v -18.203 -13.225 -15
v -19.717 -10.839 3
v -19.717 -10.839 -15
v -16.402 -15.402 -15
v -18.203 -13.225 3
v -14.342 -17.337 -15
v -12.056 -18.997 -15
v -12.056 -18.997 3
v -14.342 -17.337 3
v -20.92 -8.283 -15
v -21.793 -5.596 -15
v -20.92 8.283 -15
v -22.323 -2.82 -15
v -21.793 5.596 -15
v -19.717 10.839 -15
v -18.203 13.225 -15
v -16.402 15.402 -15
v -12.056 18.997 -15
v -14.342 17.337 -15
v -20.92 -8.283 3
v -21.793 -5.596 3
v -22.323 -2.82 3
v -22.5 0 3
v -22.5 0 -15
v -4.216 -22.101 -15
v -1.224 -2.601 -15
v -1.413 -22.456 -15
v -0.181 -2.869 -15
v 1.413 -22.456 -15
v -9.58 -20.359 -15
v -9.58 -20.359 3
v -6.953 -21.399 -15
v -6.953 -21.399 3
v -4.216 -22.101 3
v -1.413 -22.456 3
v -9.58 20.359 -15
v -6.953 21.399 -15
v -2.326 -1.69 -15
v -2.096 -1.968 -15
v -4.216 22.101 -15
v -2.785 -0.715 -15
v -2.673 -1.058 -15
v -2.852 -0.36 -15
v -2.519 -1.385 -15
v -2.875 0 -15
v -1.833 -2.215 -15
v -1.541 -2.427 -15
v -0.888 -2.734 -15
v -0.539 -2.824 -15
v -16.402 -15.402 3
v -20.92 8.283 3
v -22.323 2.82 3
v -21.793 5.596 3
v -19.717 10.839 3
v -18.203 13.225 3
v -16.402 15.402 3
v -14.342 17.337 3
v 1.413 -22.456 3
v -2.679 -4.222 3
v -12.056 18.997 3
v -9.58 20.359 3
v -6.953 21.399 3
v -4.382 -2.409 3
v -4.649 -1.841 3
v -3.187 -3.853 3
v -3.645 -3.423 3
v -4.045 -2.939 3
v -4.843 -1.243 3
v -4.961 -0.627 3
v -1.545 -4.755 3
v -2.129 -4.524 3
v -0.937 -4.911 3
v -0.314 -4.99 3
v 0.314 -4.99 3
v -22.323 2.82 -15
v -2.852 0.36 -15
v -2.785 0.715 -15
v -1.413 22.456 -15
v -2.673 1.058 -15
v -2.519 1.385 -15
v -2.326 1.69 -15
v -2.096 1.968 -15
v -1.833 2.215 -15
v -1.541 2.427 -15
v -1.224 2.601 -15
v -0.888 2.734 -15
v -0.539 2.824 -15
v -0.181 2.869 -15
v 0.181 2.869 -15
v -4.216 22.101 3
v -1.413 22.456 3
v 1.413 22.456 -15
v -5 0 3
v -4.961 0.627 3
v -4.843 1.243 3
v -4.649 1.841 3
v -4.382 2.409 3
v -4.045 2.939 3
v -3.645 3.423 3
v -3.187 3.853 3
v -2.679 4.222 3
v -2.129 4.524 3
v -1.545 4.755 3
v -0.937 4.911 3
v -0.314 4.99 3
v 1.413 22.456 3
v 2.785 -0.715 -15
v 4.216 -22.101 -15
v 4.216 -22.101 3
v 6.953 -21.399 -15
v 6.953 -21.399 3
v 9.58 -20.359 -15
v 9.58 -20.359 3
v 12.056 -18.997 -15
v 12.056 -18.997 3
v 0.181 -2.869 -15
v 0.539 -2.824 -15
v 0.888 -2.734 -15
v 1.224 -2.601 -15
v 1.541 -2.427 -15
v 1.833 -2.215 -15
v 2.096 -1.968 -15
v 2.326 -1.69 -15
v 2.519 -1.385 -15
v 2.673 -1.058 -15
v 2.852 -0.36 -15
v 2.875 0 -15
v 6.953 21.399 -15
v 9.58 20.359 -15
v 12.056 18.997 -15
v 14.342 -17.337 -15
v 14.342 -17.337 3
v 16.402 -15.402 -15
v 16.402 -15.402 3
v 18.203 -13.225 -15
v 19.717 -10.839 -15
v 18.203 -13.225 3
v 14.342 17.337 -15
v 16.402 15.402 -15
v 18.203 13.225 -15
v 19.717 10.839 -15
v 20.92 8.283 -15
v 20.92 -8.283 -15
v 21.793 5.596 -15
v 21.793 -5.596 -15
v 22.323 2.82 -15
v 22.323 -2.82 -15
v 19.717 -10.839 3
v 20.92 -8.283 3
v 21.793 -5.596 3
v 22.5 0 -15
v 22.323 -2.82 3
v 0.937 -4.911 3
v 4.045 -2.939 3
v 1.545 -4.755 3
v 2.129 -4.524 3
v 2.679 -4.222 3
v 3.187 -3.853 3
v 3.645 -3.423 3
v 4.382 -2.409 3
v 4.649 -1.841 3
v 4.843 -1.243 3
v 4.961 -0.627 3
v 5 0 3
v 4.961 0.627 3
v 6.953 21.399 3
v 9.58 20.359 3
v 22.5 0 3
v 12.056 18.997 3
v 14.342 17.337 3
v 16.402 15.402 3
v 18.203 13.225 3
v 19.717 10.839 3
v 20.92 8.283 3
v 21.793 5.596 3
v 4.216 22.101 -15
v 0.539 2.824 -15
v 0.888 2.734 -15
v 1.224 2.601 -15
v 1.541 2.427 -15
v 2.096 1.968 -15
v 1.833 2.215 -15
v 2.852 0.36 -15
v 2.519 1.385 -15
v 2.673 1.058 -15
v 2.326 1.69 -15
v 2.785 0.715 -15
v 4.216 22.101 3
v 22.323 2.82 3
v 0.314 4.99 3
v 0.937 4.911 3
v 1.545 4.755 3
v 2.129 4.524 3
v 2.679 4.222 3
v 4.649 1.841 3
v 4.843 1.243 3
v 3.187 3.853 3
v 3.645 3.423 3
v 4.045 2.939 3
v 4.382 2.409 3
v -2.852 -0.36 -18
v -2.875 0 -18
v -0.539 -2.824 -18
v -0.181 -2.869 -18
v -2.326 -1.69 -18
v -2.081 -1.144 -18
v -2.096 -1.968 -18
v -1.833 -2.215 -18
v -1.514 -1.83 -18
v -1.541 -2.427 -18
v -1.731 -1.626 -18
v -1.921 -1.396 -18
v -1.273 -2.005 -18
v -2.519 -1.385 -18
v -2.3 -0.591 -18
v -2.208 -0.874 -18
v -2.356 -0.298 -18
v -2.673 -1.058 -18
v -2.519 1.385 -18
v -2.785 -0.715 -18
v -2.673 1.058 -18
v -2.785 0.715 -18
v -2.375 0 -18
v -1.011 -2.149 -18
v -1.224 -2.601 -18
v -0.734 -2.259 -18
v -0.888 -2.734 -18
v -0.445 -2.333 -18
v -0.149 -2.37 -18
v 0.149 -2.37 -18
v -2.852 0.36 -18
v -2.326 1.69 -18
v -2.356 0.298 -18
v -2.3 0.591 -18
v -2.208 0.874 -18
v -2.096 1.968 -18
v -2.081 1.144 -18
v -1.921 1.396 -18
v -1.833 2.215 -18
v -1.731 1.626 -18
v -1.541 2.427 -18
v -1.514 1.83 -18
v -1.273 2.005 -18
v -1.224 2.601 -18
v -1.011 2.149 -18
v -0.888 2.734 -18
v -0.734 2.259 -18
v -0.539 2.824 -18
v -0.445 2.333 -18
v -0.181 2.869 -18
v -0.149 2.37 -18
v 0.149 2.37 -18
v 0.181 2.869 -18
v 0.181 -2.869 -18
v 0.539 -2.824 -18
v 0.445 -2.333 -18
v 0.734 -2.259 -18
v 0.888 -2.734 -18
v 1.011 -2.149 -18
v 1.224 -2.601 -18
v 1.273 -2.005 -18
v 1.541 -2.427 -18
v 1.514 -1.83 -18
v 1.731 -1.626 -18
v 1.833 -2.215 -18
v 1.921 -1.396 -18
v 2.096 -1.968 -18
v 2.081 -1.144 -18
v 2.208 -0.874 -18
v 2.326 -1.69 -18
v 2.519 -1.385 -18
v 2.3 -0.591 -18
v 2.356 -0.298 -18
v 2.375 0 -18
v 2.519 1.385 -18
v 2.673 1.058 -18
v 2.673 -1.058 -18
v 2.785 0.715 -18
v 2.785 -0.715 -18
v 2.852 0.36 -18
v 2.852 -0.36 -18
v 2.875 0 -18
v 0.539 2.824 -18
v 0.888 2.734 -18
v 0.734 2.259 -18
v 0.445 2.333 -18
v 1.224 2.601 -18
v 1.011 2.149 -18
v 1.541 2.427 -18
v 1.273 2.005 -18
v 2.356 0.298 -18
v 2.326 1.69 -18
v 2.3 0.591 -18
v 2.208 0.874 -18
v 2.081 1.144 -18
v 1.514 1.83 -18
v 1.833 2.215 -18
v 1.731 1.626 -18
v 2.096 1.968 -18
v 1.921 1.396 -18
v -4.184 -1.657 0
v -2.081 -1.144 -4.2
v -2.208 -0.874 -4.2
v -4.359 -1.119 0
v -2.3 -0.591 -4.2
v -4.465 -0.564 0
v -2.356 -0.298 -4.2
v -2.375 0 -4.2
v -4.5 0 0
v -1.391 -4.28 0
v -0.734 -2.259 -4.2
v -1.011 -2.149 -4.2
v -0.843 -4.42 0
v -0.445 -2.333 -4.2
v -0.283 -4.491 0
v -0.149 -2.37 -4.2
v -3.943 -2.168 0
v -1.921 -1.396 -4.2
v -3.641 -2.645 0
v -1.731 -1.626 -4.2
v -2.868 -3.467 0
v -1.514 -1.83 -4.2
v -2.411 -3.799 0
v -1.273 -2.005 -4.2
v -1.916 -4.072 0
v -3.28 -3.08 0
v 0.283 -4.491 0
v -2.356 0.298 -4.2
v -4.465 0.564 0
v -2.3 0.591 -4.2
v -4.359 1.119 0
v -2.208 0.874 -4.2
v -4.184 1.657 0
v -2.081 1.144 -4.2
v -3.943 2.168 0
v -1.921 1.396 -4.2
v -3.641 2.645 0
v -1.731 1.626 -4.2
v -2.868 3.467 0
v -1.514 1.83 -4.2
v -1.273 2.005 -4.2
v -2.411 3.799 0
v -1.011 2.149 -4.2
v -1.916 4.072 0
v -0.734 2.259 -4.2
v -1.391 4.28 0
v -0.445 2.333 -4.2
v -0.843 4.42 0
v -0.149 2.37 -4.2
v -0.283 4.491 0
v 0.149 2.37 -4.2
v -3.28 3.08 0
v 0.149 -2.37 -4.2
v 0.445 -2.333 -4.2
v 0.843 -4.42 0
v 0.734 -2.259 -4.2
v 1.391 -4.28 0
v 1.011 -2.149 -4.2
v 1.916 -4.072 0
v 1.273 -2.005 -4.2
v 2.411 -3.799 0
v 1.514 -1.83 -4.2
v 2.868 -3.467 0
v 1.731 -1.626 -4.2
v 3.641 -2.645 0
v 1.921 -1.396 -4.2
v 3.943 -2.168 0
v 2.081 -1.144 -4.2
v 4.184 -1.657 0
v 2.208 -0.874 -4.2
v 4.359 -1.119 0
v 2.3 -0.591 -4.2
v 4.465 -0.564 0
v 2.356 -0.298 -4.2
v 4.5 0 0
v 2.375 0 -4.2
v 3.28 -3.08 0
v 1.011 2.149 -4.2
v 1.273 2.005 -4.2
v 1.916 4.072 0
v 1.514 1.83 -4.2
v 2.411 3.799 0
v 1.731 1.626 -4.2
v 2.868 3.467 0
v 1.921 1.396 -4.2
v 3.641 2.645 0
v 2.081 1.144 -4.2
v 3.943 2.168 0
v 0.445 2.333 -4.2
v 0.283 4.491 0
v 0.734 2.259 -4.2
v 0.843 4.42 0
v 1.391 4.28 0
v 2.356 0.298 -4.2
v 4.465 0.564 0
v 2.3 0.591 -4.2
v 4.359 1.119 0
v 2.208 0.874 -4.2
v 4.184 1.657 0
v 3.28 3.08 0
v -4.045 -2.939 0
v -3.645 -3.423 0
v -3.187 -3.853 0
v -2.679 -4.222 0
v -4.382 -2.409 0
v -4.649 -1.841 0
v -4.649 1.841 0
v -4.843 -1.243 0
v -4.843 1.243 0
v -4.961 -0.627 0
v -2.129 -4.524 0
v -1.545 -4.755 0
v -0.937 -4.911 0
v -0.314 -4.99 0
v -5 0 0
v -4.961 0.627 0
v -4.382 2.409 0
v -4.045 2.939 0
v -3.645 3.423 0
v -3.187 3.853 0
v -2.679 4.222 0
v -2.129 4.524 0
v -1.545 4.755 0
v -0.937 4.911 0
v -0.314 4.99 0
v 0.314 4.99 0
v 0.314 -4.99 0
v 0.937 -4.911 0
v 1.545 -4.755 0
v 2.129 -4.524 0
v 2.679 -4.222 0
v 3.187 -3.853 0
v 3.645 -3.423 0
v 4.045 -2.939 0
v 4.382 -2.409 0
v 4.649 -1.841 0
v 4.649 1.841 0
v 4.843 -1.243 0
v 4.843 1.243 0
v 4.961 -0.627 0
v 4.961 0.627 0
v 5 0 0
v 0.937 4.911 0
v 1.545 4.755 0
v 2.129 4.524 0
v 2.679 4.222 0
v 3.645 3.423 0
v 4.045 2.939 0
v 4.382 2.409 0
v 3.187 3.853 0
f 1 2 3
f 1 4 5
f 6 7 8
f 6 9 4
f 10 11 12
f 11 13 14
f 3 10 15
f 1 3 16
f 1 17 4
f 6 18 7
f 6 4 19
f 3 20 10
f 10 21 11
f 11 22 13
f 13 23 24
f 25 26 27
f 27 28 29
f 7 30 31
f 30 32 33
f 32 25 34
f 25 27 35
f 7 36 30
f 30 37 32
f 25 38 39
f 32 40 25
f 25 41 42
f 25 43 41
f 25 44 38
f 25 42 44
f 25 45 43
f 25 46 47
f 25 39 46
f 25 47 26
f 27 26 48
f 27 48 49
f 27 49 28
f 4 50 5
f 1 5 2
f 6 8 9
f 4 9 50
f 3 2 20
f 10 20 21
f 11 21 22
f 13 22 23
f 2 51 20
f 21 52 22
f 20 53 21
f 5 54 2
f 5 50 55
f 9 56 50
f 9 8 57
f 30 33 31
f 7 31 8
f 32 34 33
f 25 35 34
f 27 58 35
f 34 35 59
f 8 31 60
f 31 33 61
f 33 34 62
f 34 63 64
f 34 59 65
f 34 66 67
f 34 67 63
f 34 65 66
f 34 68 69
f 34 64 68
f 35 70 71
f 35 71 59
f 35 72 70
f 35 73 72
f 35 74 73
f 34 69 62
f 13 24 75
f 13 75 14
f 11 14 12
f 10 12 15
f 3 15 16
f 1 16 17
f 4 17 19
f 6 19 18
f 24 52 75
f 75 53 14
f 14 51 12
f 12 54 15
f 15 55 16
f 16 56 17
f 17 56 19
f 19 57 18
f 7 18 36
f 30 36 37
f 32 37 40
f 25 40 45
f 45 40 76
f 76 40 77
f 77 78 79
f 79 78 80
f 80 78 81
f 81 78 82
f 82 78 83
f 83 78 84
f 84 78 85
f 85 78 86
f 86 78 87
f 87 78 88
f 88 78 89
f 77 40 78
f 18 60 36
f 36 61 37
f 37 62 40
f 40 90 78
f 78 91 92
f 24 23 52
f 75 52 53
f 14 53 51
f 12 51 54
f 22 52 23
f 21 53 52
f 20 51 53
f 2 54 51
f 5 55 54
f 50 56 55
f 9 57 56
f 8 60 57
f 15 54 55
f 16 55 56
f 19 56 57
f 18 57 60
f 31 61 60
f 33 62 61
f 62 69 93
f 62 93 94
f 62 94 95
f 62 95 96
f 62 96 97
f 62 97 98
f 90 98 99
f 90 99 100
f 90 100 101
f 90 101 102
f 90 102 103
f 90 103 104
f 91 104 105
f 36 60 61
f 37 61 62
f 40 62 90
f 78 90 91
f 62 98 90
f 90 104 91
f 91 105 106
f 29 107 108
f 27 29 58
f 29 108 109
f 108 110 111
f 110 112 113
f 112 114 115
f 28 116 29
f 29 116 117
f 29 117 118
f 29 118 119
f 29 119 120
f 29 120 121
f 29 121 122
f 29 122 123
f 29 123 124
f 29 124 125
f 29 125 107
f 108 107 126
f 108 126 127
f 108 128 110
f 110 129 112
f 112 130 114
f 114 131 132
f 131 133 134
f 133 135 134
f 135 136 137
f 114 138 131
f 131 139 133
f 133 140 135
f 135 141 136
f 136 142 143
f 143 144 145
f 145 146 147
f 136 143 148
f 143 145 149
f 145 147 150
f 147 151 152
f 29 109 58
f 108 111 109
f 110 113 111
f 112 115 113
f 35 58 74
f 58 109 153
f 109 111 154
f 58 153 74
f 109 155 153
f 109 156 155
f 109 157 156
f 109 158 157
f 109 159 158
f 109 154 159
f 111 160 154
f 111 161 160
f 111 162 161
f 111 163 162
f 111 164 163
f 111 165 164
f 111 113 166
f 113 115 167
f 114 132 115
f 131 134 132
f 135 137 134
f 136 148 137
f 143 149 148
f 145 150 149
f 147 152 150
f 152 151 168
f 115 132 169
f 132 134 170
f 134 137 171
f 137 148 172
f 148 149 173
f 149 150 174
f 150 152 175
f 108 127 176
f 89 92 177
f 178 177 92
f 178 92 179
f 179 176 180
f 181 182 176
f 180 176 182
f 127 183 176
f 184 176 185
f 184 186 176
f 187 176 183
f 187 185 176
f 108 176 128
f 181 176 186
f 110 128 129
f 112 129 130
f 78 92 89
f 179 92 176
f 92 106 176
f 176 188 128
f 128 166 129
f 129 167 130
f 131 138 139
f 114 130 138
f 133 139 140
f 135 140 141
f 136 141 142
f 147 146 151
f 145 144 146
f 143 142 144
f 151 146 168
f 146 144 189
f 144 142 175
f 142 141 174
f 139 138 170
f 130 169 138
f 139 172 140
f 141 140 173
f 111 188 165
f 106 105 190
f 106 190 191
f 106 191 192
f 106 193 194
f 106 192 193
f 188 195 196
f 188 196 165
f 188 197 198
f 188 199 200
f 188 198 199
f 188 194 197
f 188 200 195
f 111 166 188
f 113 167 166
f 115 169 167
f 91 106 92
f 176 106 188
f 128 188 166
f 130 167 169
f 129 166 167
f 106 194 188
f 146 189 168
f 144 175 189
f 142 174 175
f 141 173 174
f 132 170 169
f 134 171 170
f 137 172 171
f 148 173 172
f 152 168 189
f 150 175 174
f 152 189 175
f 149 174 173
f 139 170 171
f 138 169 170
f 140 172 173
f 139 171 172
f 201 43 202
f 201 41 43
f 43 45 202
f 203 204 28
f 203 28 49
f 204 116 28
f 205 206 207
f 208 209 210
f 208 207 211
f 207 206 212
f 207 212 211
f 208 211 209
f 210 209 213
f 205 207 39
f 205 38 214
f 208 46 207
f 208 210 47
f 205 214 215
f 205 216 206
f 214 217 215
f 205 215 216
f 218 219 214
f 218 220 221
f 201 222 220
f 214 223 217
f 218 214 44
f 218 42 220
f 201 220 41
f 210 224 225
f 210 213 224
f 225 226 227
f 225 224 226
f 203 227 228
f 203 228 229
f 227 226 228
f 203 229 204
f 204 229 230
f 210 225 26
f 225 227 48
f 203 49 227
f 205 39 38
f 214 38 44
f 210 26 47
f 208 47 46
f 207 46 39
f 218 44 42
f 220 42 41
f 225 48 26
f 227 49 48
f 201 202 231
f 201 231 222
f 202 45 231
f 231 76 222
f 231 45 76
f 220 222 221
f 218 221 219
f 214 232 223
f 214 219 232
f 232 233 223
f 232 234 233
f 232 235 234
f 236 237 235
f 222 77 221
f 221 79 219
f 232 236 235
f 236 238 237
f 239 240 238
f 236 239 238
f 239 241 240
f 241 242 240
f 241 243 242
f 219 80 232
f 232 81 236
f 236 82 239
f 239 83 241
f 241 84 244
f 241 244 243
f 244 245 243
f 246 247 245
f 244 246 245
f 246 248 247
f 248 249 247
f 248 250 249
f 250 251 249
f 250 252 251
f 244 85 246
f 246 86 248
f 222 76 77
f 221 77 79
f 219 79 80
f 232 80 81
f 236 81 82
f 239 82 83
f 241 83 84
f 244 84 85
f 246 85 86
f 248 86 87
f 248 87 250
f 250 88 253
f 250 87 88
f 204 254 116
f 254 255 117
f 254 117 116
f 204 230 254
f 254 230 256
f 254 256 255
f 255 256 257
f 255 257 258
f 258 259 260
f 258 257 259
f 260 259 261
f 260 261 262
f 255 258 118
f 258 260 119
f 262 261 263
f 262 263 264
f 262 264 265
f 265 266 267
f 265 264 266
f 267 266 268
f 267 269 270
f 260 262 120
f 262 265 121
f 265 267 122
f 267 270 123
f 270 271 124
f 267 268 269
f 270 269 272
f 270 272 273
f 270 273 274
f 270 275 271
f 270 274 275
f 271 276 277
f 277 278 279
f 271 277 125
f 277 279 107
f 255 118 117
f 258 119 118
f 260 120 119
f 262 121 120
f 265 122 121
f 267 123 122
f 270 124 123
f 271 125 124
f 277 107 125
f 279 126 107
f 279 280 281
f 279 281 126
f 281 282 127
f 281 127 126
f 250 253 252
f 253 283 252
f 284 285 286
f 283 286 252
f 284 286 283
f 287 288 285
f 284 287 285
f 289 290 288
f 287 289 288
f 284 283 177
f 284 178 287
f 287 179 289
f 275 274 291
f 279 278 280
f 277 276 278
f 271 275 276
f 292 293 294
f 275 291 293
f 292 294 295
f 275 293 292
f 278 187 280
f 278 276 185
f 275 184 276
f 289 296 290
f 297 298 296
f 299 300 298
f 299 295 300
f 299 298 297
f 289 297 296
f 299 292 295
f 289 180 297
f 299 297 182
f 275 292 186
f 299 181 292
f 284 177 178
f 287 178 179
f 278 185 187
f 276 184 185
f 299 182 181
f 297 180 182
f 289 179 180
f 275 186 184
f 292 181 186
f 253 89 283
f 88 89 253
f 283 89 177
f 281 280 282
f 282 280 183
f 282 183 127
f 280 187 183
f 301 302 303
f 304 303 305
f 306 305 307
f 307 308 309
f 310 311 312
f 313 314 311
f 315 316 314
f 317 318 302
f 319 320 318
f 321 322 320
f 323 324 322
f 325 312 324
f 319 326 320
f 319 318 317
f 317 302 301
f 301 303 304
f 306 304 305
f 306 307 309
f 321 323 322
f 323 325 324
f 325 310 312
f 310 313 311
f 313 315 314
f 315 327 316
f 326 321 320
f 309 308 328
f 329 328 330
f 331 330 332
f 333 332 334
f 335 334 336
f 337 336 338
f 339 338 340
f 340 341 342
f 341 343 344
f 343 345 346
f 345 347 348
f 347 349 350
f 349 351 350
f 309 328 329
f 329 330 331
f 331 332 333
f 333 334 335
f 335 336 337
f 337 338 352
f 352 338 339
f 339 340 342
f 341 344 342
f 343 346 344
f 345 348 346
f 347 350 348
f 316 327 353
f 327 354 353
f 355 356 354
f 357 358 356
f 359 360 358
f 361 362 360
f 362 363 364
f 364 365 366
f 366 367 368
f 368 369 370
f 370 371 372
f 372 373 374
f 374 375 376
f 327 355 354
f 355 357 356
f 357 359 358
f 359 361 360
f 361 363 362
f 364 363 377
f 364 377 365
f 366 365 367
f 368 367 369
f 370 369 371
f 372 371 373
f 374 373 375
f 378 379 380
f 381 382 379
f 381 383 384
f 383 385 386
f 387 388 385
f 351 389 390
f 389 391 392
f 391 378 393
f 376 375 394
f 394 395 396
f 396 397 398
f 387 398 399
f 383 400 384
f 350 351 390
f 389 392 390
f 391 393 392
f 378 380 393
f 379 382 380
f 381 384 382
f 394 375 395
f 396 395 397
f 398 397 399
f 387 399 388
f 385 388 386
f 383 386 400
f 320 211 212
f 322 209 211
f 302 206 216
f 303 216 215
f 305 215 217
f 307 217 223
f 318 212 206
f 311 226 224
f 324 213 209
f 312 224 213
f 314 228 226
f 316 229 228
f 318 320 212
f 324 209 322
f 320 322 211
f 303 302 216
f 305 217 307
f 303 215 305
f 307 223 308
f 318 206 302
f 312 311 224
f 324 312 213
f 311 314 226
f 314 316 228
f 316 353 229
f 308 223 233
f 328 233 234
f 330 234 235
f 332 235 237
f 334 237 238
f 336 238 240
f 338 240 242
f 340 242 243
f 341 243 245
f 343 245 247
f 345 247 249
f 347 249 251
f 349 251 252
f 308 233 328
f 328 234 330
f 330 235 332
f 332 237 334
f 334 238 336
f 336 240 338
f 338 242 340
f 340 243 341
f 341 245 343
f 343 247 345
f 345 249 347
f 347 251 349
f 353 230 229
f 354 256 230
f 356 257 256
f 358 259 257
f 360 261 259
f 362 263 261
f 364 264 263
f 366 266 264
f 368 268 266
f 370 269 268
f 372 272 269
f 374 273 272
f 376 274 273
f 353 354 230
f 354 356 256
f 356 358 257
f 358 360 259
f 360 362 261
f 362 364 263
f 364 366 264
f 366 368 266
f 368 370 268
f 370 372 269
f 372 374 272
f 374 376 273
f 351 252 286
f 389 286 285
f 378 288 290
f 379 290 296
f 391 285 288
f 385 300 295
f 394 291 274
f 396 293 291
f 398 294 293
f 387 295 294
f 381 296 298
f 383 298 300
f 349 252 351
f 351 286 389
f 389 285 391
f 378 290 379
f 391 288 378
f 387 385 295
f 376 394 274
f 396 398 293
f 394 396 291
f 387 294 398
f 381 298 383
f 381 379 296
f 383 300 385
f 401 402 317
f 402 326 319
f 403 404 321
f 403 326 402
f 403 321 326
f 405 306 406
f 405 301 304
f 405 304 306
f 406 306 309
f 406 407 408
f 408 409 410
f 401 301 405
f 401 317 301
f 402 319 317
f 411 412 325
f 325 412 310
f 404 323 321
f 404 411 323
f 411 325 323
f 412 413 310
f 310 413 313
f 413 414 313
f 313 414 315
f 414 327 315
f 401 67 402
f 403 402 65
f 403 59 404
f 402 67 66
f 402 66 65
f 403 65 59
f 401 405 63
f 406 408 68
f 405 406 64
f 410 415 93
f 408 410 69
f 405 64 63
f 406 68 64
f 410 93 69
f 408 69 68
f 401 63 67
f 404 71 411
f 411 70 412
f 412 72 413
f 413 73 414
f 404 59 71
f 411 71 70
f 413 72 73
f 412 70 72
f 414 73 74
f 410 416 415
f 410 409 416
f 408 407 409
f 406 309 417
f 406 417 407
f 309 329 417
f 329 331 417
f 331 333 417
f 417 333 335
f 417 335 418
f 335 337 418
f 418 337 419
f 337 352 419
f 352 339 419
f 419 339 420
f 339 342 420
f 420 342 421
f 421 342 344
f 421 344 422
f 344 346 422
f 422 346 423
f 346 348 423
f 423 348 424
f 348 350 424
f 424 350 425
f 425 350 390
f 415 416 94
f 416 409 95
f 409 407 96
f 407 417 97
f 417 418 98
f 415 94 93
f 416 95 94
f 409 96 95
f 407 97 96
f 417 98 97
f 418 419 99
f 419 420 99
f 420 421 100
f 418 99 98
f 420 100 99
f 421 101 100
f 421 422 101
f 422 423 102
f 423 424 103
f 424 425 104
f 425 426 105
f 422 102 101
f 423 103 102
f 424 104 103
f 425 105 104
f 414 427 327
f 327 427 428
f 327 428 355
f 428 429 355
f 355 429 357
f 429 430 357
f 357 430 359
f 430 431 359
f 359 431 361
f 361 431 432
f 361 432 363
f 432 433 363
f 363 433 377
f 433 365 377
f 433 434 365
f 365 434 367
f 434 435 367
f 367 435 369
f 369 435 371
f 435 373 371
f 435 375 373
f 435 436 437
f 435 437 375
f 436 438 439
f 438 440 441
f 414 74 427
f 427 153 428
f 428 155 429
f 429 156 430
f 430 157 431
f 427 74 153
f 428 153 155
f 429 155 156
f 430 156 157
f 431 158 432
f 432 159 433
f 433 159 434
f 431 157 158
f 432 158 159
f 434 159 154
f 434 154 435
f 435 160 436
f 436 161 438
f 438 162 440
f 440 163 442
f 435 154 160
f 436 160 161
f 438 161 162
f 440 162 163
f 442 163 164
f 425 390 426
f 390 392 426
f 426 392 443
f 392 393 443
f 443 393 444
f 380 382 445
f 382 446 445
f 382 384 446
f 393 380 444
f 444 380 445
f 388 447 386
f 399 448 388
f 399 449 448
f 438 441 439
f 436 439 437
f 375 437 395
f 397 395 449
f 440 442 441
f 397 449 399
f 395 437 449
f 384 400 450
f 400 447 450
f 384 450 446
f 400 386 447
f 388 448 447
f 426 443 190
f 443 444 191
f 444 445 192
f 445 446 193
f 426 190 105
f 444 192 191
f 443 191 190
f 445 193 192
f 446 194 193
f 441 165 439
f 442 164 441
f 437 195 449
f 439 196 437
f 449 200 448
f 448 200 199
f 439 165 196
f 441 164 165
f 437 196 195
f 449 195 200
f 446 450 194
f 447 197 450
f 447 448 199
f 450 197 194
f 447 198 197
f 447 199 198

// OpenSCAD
$fn = 50;

difference() {
	union() {
		translate(v = [0, 0, -15.0]) {
			cylinder(h = 18, r = 22.5);
		}
		#translate(v = [0, 0, -18.0]) {
			cylinder(h = 18, r = 2.875);
		}
	}
	union() {
		translate(v = [0, 0, 0]) {
			rotate(a = [0, 0, 0]) {
				difference() {
					union() {
						translate(v = [0, 0, -18.0]) {
							cylinder(h = 18, r = 2.25);
						}
						translate(v = [0, 0, -4.2]) {
							cylinder(h = 4.2, r1 = 2.375, r2 = 4.5);
						}
						translate(v = [0, 0, -18.0]) {
							cylinder(h = 18, r = 2.375);
						}
						translate(v = [0, 0, -18.0]) {
							cylinder(h = 18, r = 2.25);
						}
					}
					union();
				}
			}
		}
		#cylinder(h = 3, r = 5.0);
	}
}
